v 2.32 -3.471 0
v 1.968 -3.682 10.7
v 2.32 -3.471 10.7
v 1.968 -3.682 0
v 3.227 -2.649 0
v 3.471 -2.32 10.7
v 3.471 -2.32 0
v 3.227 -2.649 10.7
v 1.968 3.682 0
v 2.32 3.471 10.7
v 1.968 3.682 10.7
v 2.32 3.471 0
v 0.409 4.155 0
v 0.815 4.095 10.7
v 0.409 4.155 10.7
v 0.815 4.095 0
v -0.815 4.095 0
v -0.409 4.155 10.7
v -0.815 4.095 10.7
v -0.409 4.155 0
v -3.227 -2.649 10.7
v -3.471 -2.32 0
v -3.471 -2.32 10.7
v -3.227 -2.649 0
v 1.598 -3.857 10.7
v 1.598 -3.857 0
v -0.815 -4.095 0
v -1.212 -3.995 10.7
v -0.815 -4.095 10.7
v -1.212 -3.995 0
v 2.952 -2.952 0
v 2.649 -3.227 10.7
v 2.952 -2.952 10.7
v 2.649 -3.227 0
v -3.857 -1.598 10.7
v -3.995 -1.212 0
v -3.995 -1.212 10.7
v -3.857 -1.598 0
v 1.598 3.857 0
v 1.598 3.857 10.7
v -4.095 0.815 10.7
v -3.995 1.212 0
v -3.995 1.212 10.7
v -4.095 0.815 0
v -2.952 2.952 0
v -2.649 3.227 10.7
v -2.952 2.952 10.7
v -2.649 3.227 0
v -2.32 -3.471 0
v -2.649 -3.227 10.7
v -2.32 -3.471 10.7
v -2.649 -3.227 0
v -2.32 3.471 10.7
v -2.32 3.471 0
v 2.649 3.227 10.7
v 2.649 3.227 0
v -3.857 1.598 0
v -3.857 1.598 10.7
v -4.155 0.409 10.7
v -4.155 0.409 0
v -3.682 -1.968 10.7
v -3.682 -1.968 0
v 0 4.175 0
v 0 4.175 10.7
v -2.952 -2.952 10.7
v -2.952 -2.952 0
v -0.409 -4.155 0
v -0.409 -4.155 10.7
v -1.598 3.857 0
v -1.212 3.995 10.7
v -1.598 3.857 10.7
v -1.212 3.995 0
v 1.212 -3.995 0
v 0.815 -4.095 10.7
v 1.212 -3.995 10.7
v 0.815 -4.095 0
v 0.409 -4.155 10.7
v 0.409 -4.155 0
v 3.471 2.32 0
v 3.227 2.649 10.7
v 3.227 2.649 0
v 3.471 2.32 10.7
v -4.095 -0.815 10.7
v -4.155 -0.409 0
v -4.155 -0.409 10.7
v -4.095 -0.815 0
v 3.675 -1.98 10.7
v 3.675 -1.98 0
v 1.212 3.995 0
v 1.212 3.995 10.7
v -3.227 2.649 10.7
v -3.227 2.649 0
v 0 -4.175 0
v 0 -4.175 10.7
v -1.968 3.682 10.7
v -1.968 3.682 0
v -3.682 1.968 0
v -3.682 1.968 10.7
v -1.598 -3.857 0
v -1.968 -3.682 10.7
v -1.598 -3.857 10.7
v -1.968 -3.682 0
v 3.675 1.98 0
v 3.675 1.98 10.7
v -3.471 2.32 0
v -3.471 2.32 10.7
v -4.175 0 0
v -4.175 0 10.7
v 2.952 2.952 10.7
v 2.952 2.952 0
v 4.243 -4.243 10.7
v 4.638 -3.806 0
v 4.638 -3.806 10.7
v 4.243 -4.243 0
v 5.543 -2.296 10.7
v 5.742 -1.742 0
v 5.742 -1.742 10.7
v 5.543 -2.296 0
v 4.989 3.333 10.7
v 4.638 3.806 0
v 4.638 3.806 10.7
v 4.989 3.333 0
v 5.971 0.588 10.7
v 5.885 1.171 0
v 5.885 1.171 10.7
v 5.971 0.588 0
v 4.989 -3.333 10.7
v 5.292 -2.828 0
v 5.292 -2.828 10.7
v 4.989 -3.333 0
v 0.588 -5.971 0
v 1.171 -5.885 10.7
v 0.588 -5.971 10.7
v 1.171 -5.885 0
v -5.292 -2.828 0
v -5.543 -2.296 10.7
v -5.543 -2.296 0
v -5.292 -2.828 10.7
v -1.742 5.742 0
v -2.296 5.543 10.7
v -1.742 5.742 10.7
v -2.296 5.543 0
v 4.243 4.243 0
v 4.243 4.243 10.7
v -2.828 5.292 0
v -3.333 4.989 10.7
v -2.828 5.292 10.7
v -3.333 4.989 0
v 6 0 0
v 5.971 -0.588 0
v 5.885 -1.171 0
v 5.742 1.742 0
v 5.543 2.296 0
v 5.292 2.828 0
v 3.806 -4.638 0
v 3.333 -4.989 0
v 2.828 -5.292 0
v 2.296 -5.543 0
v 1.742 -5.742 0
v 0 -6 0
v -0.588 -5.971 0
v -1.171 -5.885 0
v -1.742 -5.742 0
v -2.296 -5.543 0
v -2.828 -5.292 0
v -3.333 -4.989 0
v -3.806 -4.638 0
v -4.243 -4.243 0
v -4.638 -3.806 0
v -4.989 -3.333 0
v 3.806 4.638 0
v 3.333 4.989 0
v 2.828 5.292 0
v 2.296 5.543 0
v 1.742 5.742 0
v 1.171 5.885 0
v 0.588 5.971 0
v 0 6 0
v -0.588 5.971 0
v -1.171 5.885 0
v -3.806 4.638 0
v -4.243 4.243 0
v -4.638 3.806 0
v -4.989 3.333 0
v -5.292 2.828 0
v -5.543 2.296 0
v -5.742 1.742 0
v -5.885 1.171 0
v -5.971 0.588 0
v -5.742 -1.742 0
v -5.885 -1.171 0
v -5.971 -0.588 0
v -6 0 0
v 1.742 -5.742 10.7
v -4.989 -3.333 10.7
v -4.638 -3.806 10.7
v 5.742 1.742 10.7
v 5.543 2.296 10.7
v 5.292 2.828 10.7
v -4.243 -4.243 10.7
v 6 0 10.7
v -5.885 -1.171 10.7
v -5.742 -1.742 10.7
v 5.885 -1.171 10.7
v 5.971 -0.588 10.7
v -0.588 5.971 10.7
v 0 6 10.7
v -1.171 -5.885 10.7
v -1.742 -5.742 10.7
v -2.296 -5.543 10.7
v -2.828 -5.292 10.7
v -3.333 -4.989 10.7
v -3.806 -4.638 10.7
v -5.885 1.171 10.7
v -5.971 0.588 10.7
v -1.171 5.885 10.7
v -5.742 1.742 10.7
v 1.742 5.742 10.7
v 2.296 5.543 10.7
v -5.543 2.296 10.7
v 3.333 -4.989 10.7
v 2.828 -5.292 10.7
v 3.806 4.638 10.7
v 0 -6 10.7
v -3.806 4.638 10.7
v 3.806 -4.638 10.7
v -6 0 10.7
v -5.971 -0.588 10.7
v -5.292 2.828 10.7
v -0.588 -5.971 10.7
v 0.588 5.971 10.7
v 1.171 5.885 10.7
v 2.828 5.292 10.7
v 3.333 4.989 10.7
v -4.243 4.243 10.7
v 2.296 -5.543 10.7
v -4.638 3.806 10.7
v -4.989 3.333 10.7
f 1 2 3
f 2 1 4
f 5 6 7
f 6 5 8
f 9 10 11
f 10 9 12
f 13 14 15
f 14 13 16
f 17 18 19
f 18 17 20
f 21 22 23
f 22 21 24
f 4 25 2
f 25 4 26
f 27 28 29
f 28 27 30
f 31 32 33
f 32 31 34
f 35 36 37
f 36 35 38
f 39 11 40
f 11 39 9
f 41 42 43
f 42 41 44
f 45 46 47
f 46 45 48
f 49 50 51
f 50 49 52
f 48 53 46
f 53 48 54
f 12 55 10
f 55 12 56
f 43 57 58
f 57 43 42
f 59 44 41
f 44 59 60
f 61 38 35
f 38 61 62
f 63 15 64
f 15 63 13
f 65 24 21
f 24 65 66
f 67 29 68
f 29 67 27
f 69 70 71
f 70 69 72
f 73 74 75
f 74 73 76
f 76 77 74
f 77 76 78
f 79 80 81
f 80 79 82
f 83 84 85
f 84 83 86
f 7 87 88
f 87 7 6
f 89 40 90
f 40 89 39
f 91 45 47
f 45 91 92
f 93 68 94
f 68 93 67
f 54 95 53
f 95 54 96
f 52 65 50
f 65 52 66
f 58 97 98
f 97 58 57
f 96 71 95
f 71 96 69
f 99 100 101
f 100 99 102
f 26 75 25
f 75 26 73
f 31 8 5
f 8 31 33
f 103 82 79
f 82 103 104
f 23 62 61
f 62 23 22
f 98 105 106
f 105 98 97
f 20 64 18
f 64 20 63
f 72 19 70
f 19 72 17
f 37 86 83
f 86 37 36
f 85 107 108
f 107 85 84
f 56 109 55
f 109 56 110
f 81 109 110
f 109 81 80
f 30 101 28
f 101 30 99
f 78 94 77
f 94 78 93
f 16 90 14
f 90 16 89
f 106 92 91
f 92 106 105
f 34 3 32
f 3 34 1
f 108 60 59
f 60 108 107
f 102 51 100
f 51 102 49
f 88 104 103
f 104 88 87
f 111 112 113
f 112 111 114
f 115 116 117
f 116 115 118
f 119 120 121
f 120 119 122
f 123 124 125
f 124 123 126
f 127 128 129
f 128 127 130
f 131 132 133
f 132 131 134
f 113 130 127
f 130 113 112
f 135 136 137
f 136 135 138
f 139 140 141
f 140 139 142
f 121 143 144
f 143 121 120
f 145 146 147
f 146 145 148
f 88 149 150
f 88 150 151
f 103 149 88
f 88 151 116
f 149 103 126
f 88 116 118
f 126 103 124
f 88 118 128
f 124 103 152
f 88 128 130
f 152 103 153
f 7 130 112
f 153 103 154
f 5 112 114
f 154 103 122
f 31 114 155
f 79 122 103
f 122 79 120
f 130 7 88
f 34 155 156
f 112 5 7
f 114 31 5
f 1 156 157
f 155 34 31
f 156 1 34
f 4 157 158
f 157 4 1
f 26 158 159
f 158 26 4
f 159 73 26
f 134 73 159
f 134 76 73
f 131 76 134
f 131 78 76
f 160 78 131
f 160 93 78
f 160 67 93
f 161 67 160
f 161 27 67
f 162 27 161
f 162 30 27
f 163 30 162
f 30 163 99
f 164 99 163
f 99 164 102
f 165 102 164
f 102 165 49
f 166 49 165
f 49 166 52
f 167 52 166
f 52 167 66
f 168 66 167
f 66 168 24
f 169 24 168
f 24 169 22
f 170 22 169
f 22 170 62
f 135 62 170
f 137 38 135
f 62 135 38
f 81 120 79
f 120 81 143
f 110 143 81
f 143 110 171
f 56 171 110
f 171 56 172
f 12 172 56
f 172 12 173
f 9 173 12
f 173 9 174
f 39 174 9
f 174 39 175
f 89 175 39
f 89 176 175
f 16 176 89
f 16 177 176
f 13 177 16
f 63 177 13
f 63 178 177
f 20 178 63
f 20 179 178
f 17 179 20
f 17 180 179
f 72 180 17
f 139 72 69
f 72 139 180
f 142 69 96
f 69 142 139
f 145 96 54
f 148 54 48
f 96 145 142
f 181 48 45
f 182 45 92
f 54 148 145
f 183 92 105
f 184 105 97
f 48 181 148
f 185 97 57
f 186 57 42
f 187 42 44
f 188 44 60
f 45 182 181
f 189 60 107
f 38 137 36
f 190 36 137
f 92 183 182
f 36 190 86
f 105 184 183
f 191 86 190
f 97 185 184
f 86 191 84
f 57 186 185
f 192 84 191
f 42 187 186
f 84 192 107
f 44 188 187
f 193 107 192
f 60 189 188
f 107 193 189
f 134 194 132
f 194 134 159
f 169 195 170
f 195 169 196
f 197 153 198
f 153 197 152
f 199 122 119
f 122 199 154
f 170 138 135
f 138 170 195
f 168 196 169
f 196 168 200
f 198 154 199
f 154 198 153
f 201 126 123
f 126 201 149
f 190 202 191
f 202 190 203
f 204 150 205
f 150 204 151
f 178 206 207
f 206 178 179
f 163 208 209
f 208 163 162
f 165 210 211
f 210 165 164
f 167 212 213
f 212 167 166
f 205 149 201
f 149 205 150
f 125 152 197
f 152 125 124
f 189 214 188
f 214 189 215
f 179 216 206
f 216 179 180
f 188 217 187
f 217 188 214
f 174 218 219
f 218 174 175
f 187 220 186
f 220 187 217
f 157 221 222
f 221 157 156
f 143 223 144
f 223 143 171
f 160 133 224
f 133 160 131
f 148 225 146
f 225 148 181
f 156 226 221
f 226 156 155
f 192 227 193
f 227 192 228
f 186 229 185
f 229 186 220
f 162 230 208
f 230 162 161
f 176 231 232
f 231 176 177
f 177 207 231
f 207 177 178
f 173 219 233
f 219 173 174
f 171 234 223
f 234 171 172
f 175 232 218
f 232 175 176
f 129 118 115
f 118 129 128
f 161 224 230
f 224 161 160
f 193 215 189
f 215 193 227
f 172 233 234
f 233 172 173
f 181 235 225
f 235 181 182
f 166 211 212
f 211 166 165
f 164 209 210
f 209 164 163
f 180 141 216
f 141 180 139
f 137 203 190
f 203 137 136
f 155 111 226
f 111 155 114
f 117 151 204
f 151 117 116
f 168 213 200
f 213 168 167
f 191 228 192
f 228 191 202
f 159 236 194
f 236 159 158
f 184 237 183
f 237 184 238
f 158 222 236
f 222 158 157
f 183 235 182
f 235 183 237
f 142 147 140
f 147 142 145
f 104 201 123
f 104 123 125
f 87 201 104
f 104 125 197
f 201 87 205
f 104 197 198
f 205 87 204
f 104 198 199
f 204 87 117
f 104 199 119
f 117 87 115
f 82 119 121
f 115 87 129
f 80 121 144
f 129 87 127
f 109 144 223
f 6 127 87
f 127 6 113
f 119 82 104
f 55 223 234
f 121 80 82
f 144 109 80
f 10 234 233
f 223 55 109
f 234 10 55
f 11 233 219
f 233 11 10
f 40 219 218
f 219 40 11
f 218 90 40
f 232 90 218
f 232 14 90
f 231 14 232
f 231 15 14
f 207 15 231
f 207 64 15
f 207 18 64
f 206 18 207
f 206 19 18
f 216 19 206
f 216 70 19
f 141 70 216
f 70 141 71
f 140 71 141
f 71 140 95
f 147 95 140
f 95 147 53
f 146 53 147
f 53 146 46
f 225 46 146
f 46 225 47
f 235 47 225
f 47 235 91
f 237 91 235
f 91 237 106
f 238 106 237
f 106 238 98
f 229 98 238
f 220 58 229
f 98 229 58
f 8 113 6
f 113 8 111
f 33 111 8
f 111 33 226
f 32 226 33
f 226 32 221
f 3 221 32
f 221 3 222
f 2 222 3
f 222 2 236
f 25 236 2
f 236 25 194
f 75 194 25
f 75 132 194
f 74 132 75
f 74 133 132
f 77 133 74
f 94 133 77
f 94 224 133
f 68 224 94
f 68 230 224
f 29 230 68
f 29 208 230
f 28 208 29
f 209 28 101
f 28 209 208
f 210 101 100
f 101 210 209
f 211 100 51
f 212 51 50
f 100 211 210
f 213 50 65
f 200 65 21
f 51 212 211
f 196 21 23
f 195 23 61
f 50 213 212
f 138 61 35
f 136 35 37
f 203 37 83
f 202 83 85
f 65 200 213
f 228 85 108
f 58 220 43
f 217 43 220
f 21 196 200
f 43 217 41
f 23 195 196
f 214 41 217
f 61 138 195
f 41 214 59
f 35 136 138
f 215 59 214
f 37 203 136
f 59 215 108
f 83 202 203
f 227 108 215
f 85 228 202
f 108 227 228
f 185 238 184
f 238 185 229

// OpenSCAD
// file: parameters.scad
// =============================================================================
// Gen-BU — nightly 2026-10-10 (physics_scorer, honest magpylib watts)
// New pole/coil ratio on a much bigger ring: twelve narrow 26.4° bobbins (r 52–82 mm, 13.5 mm build, 8.1 mm copper) under 8 poles pushed out to R66, so each coil spans 120° electrical with a short mean turn while the poles sit 52 mm apart (less pole-to-pole leakage) and move faster. 8p/12c was dismissed on earlier nights at 3.2 W because it was only scanned on the R50 ring; tonight it climbs steadily with ring radius (R50 3.39 → R57 4.58 → R59.5 5.18 → R66 6.08 W scan). Diametric Ø5 assists turned out to LOWER this layout, so none are fitted. A ring this big no longer fits a one-plate layout with disc endbells, so the endbells become two crossed 44 mm bar bearing bridges, which is what keeps it on one 410 mm plate.
// Clocking 0 deg (magnets N facing S) + D-flat keyed bore + index notch + flip-symmetric hole map.
// Windable 2-piece bobbin; turns = physics_scorer turns_fit; copper only between flanges.
// Steel back-iron: 2× Ø158 × 4.76 mm (3/16") mild-steel discs (steel_backiron_disc.dxf); magnets sit ON the steel
// (through-pockets) -> score with --back-iron. Night 2026-10-10.
// =============================================================================
topology            = "dual_rotor";

// --- Wire / winding (physics_scorer winding-fit) -------------------------------
wire_awg            = 26;
wire_od             = 0.45;     // insulated OD mm (bare 0.405)
fill_realistic      = 0.65;     // insulated-wire area / window (DENSE layered wind with a jig; scorer cap 0.65)
turns               = 446;       // = physics_scorer turns_fit (do NOT raise)
coil_former_type    = "bobbin";
coil_core_inset     = 13.50;     // radial copper build: hub = copper boundary inset by this
wind_build_axial    = 0.0;      // nothing proud of the flanges
wind_build_radial   = 0.0;

// --- Bobbin (base + lid) ---------------------------------------------------------
coil_id_r           = 52.00;    // copper boundary sector
coil_od_r           = 82.00;
span_deg            = 26.36;    // = pitch - 2*asin((wall+0.85)/coil_id_r) -> >=1.2 mm stator web
former_web          = 8.10;     // copper height between flanges (TALL copper: steel keeps Bz up)
flange_t            = 0.80;     // >= 0.8 mm FDM wall rule (tall winds push on the flanges)
wall                = 0.80;     // flange lip beyond copper
former_bare_h       = former_web + 2 * flange_t;
coil_envelope_h     = former_bare_h + 2 * wind_build_axial;
tab_w               = 7.0;
tab_len             = 7.0;
tab_h               = former_bare_h / 2;
pin_d               = 1.9;      // 1.75 mm filament locating pin
coil_mount_r        = coil_od_r + 0.2 + 4.0;
lead_y              = 1.6;
lead_slot_w         = 0.9;
lead_groove_d       = 0.6;

// --- Gap -------------------------------------------------------------------------
run_clear           = 0.50;     // rotor face -> flange
gap_spacer_h        = run_clear + wind_build_axial;
m2m                 = coil_envelope_h + 2 * run_clear;   // rotor face to rotor face (= gap_sleeve length)

// --- Stator ----------------------------------------------------------------------
coil_stations       = 12;
bay_clear           = 0.25;
stator_thick        = former_bare_h;                        // bobbins flush both faces
stator_od           = 182;
shaft_clear_stator  = 14.0;     // stator is static; gap sleeve OD 12 spins inside

// --- Rotor(s) --------------------------------------------------------------------
magnet_Br           = 1.43;     // N52
magnet_d_large      = 20.0;
magnet_h_large      = 5.0;      // one O20x5 per pocket
magnet_h_small      = 5.0;      // unused: no O5 pockets in this kit
halbach_magnetisation = "none";  // NO O5 assist magnets in this kit (scan: they lower the 4-pole score)
rotor_b_same_axis   = true;     // same-index magnets share one axis: N faces S across the gap
large_pocket_d      = 20.3;
small_pocket_d      = 5.3;
pocket_h            = 5.00;     // THROUGH the carrier: magnet back face sits on the steel disc (FLUSH seat: carrier = magnet height, magnet face level with the rotor face)
large_n             = 8;
R_large             = 66.0;
small_r_list        = [];       // no O5 pockets
carrier_od          = 158.0;
carrier_thick       = pocket_h;
hub_h               = 12.0;     // > steel_t + insert: radial set-screw clears the steel
hub_od              = 24.0;     // slim hub so the M4 brace rods fit at R~18 inside the coil ring
hub_insert_d        = 4.0;      // M3 heat-set insert, radial, bears on the D-flat
rotor_b_offset_deg  = 0.0;      // CLOCKING: magnets directly opposite
shaft_key           = "dflat";
dflat_depth         = 0.5;      // 8 mm shaft with 0.5 mm flat (7.5 across flat)
index_notch_d       = 3.0;

// --- Steel back-iron (buyable laser-cut) -------------------------------------------
steel_t             = 4.76;      // mild steel thickness (image method ignores it; sized from steel_flux.py so the return path stays well below saturation)
steel_center_hole   = 26.0;     // slips over the rotor hub (OD 24)
steel_od            = carrier_od;   // steel disc OD = rotor carrier OD

// --- Modular MAX interface ----------------------------------------------------------
shaft_bore          = 8.35;
dflat_x             = 4.0 - dflat_depth + (shaft_bore - 8.0) / 2;
bearing_d           = 21.85;
bearing_h           = 7.2;
m3_clear            = 3.5;
bolt_r_inner        = 30.0;     // M3 steel-disc clamp bolts (inside the magnet ring)
bolt_n_inner        = 4;
bolt_inner_angles   = [0, 90, 180, 270];
bolt_r_outer        = 44.0;     // second M3 steel-disc clamp ring
bolt_outer_angles   = [67.5, 112.5, 247.5, 292.5];
flange_bolt_r       = 85.0;     // frame rods: OUTSIDE the rotor OD (rotors spin inside them)
flange_bolt_n       = 4;
flange_bolt_offset  = 45.00;    // between coil stations -> never cuts a lead groove/tab
brace_r             = 18.0;
brace_d             = 4.3;      // temporary M4 jack rods (assembly only)
brace_n             = 4;
brace_angles        = [45, 135, 225, 315];          // flip-symmetric

spacer_pad_od       = 14.0;
spacer_pad_id       = m3_clear;
endbell_od          = 180.0;
endbell_thick       = 8.0;
endbell_shaft_clear = 10.0;
collar_h            = 10.0;
standoff_od         = 9.0;
frame_standoff_h    = run_clear + carrier_thick + hub_h + collar_h + 2.0;
sleeve_od           = 12.0;
plate_max_mm        = 410;

$fn = 64;
// main file
// Gen-BU — gap sleeve: rigid spacer on the shaft BETWEEN the two rotor carriers (passes through the stator
// hole). Length = m2m, so it sets the magnet gap and carries the full magnet pull. Print x1, upright.
include <parameters.scad>;
$fn = 64;
// D-flat keyed bore: flat faces +X (angle 0 = magnet pocket 0 = index notch)
module dflat_bore(h) {
    intersection() {
        cylinder(d=shaft_bore, h=h);
        translate([-shaft_bore, -shaft_bore, 0]) cube([shaft_bore + dflat_x, 2*shaft_bore, h]);
    }
}

difference() {
    cylinder(d=sleeve_od, h=m2m);
    translate([0, 0, -0.1]) dflat_bore(m2m + 0.2);
}
